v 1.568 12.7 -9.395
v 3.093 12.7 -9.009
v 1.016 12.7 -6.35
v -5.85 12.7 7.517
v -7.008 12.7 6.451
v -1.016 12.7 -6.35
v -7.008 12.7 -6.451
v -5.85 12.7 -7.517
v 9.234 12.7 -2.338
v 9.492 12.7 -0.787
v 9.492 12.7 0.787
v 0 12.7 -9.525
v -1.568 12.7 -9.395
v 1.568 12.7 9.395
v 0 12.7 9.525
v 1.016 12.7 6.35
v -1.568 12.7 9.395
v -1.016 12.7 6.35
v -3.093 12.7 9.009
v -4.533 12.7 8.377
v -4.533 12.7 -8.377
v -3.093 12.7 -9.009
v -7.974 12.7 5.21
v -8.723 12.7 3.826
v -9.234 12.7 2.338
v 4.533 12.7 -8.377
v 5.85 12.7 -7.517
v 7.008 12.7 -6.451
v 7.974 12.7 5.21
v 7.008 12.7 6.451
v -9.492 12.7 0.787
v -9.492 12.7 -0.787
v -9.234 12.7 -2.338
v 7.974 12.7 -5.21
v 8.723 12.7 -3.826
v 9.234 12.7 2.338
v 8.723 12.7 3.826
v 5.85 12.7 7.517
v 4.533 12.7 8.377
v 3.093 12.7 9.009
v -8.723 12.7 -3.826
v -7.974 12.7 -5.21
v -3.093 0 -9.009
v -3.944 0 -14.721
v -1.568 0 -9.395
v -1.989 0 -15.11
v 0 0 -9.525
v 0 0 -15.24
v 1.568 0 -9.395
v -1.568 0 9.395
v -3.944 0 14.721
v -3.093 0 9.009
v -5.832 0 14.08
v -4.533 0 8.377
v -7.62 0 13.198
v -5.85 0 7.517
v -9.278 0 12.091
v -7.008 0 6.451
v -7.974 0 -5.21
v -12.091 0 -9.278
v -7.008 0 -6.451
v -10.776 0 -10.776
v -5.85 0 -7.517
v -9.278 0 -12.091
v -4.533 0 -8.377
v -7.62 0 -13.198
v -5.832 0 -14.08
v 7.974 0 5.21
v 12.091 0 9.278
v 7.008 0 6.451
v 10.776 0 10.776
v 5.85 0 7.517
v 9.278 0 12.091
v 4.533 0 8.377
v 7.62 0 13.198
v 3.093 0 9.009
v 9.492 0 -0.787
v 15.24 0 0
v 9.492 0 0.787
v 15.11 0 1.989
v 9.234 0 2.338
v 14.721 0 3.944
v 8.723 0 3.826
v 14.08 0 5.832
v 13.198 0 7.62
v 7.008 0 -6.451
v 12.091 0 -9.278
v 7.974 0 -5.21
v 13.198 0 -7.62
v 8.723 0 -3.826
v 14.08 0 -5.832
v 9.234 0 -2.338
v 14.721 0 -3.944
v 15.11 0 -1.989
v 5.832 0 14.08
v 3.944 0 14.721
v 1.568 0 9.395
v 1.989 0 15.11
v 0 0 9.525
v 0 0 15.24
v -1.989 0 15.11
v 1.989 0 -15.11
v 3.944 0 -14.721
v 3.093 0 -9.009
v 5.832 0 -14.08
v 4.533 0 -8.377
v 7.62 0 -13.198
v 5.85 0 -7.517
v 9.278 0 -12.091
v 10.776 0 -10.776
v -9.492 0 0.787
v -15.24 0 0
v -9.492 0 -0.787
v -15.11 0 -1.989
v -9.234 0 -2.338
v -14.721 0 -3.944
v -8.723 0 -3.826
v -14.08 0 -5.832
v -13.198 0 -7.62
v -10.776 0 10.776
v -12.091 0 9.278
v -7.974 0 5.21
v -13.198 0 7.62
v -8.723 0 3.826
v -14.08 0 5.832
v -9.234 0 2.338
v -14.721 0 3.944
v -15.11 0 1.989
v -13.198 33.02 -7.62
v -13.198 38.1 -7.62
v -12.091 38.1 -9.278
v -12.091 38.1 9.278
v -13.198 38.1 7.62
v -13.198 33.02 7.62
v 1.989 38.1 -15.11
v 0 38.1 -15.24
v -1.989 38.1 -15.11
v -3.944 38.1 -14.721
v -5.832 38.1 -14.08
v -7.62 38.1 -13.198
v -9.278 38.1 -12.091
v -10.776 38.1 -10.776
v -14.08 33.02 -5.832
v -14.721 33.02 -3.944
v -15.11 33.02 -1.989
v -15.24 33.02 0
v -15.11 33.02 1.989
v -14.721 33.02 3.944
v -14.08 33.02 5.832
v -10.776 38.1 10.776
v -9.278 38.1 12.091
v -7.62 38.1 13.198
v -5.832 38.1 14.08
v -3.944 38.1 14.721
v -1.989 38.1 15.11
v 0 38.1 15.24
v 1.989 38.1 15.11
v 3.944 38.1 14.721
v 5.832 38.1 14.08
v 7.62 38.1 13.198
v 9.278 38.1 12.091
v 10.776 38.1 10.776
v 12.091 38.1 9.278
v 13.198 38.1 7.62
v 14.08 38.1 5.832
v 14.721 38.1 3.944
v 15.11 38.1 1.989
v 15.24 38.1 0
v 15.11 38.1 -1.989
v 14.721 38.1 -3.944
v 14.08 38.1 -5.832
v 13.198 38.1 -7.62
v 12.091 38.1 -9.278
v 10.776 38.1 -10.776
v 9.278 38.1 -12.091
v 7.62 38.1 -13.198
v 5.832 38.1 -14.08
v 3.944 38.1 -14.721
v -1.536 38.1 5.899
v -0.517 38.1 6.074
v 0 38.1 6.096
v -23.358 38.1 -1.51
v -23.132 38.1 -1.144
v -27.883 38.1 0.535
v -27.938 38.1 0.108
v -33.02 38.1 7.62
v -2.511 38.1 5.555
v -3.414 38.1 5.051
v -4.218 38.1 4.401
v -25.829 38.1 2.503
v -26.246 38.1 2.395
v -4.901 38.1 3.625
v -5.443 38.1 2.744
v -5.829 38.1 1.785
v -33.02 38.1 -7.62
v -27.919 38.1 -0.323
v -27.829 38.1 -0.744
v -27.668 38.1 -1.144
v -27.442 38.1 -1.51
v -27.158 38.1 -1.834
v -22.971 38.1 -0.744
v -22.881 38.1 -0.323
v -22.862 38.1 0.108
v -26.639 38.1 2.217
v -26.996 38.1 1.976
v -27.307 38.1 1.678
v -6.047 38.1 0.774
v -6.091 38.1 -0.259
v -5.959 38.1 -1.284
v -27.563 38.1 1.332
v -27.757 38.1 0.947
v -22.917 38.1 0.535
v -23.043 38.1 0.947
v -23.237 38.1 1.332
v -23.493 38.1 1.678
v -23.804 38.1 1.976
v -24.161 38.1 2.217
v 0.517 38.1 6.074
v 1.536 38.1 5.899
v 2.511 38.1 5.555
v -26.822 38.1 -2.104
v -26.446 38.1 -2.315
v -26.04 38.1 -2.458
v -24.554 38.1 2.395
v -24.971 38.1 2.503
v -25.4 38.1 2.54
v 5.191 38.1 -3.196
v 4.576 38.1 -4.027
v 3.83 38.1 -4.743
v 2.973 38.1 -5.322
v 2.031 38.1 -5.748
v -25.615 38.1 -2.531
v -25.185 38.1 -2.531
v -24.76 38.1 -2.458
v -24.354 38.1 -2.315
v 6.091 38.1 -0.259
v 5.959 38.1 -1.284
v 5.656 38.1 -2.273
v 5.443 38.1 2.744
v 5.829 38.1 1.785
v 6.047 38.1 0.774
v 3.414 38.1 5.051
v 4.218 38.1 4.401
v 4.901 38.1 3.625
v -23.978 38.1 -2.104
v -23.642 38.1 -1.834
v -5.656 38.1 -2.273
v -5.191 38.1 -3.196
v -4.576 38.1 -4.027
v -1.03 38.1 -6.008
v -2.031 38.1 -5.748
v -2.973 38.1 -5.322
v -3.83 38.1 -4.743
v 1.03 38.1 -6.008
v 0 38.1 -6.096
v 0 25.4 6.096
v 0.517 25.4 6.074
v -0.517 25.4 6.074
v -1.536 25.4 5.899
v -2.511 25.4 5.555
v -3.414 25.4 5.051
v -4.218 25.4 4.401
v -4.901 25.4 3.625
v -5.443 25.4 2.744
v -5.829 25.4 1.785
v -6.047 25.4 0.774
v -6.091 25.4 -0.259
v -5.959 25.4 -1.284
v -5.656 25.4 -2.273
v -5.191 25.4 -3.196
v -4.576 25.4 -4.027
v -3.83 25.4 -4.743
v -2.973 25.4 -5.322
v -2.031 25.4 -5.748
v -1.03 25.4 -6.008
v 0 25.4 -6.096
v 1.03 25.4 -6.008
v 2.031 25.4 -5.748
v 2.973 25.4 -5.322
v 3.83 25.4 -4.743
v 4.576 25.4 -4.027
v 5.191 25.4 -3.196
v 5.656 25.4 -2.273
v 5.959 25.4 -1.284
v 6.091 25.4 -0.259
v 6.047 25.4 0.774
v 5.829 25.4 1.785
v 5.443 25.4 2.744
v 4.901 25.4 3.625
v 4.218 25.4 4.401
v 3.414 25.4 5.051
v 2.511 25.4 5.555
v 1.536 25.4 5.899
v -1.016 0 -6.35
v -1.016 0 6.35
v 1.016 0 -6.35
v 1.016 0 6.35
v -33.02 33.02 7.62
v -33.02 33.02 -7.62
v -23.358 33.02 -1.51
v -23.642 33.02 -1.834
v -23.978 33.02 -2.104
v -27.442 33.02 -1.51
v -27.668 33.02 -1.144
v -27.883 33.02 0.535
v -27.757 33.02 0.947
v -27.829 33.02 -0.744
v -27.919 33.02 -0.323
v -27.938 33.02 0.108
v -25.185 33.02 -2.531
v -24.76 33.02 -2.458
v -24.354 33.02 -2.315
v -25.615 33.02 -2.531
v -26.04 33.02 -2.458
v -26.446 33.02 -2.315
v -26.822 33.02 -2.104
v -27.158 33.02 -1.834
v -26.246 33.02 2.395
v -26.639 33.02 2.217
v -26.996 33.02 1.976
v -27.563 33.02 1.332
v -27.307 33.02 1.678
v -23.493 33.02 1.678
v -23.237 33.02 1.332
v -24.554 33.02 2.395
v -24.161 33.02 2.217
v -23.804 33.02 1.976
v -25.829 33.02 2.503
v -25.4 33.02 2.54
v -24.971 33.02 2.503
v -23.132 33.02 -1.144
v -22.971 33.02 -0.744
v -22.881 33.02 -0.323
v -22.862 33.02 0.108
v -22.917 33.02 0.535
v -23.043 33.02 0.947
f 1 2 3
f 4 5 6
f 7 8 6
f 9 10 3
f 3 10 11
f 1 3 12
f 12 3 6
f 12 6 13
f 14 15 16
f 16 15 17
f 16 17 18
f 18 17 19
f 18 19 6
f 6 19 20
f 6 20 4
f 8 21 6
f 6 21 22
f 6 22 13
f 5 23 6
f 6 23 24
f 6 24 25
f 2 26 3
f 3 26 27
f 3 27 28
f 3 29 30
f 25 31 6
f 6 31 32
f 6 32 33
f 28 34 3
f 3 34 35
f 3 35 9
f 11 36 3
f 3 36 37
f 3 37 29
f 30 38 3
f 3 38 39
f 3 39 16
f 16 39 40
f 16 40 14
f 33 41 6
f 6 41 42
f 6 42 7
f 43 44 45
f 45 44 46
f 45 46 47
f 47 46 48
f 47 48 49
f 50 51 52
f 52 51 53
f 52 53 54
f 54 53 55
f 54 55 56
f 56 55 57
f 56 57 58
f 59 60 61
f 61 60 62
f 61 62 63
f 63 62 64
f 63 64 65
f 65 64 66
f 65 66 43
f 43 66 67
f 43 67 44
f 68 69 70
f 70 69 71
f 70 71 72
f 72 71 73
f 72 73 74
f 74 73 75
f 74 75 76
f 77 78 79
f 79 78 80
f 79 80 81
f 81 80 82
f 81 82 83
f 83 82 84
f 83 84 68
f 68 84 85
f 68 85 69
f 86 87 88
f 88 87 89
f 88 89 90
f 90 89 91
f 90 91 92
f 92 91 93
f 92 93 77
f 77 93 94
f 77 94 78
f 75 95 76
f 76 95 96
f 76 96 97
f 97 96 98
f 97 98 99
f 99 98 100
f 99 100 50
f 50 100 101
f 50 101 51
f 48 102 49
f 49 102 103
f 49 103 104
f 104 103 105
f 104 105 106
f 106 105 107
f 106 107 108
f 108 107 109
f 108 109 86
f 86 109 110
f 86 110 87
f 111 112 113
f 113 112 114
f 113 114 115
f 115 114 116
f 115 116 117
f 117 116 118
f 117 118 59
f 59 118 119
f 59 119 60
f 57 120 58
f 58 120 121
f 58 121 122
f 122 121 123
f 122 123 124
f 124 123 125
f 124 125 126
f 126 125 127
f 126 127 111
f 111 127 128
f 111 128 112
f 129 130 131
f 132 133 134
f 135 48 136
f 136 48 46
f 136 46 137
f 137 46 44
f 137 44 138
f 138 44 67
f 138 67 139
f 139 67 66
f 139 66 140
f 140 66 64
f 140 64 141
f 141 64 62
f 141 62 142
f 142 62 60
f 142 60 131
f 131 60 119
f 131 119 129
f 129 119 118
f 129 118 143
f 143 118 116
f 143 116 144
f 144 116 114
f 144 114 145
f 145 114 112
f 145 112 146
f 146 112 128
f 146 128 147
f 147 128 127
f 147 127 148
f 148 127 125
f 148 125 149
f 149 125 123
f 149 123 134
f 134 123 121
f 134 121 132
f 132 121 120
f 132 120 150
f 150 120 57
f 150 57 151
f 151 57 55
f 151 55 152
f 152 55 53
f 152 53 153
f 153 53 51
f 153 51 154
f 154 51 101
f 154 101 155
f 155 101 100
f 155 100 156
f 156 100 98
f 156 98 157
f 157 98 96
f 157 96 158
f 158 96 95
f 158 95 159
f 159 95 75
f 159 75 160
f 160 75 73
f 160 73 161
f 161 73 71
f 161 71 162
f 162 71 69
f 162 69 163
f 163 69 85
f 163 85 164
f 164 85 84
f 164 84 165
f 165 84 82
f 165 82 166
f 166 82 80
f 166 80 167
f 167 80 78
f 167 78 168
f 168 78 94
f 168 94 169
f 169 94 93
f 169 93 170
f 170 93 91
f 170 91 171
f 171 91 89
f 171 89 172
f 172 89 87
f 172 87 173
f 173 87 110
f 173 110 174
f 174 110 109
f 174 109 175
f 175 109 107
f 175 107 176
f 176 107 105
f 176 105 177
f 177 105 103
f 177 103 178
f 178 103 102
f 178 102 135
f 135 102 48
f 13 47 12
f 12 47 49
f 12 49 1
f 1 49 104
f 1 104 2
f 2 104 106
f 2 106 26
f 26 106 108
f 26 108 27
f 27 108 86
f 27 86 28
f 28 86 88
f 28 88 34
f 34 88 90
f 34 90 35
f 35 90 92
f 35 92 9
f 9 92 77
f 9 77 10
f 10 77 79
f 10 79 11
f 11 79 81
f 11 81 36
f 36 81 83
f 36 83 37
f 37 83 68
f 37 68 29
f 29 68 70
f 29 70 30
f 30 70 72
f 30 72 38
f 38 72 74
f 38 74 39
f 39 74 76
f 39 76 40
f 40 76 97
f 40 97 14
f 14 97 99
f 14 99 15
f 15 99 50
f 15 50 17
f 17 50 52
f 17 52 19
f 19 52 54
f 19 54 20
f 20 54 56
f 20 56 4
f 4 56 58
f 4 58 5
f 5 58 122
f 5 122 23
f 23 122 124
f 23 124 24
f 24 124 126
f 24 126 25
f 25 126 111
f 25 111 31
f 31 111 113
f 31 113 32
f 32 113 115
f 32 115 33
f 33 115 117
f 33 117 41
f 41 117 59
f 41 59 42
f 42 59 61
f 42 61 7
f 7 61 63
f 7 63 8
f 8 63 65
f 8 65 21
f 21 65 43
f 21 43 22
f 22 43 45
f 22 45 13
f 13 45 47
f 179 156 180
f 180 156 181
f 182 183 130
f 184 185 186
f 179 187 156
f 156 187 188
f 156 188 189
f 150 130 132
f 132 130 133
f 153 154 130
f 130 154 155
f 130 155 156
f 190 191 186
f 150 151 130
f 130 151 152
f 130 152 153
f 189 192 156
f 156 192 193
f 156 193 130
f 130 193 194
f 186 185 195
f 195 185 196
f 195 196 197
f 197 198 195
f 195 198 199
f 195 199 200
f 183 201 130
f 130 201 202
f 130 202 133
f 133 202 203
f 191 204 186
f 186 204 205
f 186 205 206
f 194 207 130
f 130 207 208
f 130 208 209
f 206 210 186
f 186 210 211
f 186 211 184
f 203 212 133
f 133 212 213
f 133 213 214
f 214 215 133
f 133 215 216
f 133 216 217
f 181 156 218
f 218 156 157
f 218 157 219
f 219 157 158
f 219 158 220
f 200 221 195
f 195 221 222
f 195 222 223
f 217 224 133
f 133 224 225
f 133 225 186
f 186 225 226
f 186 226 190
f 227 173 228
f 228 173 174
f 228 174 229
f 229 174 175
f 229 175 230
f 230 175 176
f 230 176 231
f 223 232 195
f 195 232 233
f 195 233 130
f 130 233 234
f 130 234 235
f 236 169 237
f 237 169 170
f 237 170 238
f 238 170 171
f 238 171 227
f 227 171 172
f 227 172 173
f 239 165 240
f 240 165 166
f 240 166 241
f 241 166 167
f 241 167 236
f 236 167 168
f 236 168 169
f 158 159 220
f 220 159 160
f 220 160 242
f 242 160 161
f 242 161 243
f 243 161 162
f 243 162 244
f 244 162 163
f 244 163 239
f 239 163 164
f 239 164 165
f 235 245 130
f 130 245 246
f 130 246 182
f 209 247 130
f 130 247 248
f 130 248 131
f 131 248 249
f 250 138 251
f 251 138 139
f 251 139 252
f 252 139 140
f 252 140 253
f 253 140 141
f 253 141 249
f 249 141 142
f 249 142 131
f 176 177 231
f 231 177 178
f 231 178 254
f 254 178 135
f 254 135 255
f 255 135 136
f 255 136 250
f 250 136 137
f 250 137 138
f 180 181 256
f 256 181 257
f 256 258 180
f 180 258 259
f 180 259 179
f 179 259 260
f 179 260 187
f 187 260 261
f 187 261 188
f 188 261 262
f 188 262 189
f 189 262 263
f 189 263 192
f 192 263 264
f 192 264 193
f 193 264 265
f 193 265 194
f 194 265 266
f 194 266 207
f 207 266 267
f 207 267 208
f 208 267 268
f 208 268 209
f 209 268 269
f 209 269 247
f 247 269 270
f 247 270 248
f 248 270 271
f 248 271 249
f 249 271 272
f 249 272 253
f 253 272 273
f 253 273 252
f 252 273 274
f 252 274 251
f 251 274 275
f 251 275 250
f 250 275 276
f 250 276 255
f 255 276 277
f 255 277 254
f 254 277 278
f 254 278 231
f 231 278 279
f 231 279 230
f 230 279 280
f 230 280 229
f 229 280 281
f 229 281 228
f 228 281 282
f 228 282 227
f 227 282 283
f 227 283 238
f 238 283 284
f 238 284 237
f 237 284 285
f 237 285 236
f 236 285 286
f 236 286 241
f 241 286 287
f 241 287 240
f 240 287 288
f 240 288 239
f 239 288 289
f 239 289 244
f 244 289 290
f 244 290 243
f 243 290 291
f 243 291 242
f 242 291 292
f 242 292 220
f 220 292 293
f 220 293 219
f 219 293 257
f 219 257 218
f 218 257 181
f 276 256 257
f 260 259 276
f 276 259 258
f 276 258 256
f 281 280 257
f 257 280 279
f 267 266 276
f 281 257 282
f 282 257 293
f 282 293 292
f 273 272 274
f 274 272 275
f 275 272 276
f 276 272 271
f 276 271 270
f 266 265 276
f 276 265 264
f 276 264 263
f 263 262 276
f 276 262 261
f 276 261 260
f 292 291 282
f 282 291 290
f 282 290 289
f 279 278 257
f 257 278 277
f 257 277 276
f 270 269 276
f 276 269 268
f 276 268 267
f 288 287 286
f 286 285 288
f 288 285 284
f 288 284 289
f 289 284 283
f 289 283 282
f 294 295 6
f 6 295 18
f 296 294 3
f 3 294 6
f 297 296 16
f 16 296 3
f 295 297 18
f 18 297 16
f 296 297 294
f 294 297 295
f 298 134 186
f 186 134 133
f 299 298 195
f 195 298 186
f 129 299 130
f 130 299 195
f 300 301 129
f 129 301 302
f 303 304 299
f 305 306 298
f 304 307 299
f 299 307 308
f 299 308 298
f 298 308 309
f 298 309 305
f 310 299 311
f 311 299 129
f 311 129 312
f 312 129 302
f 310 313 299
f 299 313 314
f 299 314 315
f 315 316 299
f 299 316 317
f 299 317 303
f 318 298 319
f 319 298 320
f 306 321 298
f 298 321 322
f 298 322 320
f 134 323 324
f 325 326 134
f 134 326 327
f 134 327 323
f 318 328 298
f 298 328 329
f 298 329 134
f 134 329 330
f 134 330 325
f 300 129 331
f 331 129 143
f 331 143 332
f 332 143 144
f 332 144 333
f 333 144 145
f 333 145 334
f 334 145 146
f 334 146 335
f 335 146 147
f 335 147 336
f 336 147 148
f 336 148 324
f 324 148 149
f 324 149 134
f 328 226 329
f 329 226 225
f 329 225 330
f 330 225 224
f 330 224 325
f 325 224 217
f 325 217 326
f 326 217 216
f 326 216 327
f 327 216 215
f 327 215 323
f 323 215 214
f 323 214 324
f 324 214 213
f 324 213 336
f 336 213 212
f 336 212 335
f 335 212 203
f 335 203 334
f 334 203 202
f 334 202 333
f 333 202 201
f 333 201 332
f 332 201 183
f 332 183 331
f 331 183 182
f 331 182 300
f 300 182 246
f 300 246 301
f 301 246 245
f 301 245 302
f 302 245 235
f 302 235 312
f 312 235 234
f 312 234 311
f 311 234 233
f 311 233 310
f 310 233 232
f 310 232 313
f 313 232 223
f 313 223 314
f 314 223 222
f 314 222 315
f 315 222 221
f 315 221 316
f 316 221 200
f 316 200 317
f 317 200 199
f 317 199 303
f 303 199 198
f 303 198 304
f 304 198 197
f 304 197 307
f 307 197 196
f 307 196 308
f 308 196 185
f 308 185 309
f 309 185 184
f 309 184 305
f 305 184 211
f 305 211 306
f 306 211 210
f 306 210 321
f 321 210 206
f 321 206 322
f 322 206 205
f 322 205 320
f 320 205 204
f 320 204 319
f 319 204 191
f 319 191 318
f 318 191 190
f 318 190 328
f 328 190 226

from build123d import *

# Parameters (mm, degrees)
SKETCH1_R           = 15.24
SKETCH1_R_2         = 9.525
BOSS_EXTRUDE2_DEPTH = 12.7
SKETCH3_R           = 15.24
BOSS_EXTRUDE3_DEPTH = 12.7
SKETCH4_R           = 15.24
SKETCH4_R_2         = 6.096
BOSS_EXTRUDE4_DEPTH = 12.7
SKETCH5_W           = 2.032
SKETCH5_H           = 12.7
BOSS_EXTRUDE5_DEPTH = 12.7
BOSS_EXTRUDE6_START = -5.08
BOSS_EXTRUDE6_DEPTH = 5.08
SKETCH7_R           = 2.54
CUT_EXTRUDE1_DEPTH  = 5.08


with BuildPart() as part:
    # Sketch1 → Boss-Extrude2 (new body)
    with BuildSketch(Plane(origin=(0, 0, 0), x_dir=(1, 0, 0), z_dir=(0, 1, 0))):
        with Locations(Location((0, 0, 0), (0, 0, 270))):
            Circle(SKETCH1_R)
        with Locations(Location((0, 0, 0), (0, 0, 270))):
            Circle(SKETCH1_R_2, mode=Mode.SUBTRACT)
    extrude(amount=BOSS_EXTRUDE2_DEPTH)

    # Sketch3 → Boss-Extrude3 (add)
    with BuildSketch(Plane(origin=(0, 12.7, 0), x_dir=(1, 0, 0), z_dir=(0, 1, 0))):
        with Locations(Location((0, 0, 0), (0, 0, 270))):
            Circle(SKETCH3_R)
    extrude(amount=BOSS_EXTRUDE3_DEPTH)

    # Sketch4 → Boss-Extrude4 (add)
    with BuildSketch(Plane(origin=(0, 25.4, 0), x_dir=(1, 0, 0), z_dir=(0, 1, 0))):
        with Locations(Location((0, 0, 0), (0, 0, 270))):
            Circle(SKETCH4_R)
        with Locations(Location((0, 0, 0), (0, 0, 270))):
            Circle(SKETCH4_R_2, mode=Mode.SUBTRACT)
    extrude(amount=BOSS_EXTRUDE4_DEPTH)

    # Sketch5 → Boss-Extrude5 (add)
    with BuildSketch(Plane.XZ.offset(-12.7)):
        Rectangle(SKETCH5_W, SKETCH5_H)
    extrude(amount=BOSS_EXTRUDE5_DEPTH)

    # Sketch6 → Boss-Extrude6 (add)
    with BuildSketch(Plane(origin=(0, 38.1, 0), x_dir=(1, 0, 0), z_dir=(0, 1, 0)).offset(BOSS_EXTRUDE6_START)):
        with BuildLine():
            Line((-13.198227154, 7.62), (-33.02, 7.62))
            Line((-33.02, 7.62), (-33.02, -7.62))
            Line((-33.02, -7.62), (-13.198227154, -7.62))
            ThreePointArc((-13.198227154, -7.62), (-15.24, 0), (-13.198227154, 7.62))
        make_face()
    extrude(amount=BOSS_EXTRUDE6_DEPTH)

    # Sketch7 → Cut-Extrude1 (cut)
    with BuildSketch(Plane(origin=(0, 38.1, 0), x_dir=(1, 0, 0), z_dir=(0, 1, 0))):
        with Locations(Location((-25.4, 0, 0), (0, 0, 270))):
            Circle(SKETCH7_R)
    extrude(amount=-CUT_EXTRUDE1_DEPTH, mode=Mode.SUBTRACT)


solid = part.part
